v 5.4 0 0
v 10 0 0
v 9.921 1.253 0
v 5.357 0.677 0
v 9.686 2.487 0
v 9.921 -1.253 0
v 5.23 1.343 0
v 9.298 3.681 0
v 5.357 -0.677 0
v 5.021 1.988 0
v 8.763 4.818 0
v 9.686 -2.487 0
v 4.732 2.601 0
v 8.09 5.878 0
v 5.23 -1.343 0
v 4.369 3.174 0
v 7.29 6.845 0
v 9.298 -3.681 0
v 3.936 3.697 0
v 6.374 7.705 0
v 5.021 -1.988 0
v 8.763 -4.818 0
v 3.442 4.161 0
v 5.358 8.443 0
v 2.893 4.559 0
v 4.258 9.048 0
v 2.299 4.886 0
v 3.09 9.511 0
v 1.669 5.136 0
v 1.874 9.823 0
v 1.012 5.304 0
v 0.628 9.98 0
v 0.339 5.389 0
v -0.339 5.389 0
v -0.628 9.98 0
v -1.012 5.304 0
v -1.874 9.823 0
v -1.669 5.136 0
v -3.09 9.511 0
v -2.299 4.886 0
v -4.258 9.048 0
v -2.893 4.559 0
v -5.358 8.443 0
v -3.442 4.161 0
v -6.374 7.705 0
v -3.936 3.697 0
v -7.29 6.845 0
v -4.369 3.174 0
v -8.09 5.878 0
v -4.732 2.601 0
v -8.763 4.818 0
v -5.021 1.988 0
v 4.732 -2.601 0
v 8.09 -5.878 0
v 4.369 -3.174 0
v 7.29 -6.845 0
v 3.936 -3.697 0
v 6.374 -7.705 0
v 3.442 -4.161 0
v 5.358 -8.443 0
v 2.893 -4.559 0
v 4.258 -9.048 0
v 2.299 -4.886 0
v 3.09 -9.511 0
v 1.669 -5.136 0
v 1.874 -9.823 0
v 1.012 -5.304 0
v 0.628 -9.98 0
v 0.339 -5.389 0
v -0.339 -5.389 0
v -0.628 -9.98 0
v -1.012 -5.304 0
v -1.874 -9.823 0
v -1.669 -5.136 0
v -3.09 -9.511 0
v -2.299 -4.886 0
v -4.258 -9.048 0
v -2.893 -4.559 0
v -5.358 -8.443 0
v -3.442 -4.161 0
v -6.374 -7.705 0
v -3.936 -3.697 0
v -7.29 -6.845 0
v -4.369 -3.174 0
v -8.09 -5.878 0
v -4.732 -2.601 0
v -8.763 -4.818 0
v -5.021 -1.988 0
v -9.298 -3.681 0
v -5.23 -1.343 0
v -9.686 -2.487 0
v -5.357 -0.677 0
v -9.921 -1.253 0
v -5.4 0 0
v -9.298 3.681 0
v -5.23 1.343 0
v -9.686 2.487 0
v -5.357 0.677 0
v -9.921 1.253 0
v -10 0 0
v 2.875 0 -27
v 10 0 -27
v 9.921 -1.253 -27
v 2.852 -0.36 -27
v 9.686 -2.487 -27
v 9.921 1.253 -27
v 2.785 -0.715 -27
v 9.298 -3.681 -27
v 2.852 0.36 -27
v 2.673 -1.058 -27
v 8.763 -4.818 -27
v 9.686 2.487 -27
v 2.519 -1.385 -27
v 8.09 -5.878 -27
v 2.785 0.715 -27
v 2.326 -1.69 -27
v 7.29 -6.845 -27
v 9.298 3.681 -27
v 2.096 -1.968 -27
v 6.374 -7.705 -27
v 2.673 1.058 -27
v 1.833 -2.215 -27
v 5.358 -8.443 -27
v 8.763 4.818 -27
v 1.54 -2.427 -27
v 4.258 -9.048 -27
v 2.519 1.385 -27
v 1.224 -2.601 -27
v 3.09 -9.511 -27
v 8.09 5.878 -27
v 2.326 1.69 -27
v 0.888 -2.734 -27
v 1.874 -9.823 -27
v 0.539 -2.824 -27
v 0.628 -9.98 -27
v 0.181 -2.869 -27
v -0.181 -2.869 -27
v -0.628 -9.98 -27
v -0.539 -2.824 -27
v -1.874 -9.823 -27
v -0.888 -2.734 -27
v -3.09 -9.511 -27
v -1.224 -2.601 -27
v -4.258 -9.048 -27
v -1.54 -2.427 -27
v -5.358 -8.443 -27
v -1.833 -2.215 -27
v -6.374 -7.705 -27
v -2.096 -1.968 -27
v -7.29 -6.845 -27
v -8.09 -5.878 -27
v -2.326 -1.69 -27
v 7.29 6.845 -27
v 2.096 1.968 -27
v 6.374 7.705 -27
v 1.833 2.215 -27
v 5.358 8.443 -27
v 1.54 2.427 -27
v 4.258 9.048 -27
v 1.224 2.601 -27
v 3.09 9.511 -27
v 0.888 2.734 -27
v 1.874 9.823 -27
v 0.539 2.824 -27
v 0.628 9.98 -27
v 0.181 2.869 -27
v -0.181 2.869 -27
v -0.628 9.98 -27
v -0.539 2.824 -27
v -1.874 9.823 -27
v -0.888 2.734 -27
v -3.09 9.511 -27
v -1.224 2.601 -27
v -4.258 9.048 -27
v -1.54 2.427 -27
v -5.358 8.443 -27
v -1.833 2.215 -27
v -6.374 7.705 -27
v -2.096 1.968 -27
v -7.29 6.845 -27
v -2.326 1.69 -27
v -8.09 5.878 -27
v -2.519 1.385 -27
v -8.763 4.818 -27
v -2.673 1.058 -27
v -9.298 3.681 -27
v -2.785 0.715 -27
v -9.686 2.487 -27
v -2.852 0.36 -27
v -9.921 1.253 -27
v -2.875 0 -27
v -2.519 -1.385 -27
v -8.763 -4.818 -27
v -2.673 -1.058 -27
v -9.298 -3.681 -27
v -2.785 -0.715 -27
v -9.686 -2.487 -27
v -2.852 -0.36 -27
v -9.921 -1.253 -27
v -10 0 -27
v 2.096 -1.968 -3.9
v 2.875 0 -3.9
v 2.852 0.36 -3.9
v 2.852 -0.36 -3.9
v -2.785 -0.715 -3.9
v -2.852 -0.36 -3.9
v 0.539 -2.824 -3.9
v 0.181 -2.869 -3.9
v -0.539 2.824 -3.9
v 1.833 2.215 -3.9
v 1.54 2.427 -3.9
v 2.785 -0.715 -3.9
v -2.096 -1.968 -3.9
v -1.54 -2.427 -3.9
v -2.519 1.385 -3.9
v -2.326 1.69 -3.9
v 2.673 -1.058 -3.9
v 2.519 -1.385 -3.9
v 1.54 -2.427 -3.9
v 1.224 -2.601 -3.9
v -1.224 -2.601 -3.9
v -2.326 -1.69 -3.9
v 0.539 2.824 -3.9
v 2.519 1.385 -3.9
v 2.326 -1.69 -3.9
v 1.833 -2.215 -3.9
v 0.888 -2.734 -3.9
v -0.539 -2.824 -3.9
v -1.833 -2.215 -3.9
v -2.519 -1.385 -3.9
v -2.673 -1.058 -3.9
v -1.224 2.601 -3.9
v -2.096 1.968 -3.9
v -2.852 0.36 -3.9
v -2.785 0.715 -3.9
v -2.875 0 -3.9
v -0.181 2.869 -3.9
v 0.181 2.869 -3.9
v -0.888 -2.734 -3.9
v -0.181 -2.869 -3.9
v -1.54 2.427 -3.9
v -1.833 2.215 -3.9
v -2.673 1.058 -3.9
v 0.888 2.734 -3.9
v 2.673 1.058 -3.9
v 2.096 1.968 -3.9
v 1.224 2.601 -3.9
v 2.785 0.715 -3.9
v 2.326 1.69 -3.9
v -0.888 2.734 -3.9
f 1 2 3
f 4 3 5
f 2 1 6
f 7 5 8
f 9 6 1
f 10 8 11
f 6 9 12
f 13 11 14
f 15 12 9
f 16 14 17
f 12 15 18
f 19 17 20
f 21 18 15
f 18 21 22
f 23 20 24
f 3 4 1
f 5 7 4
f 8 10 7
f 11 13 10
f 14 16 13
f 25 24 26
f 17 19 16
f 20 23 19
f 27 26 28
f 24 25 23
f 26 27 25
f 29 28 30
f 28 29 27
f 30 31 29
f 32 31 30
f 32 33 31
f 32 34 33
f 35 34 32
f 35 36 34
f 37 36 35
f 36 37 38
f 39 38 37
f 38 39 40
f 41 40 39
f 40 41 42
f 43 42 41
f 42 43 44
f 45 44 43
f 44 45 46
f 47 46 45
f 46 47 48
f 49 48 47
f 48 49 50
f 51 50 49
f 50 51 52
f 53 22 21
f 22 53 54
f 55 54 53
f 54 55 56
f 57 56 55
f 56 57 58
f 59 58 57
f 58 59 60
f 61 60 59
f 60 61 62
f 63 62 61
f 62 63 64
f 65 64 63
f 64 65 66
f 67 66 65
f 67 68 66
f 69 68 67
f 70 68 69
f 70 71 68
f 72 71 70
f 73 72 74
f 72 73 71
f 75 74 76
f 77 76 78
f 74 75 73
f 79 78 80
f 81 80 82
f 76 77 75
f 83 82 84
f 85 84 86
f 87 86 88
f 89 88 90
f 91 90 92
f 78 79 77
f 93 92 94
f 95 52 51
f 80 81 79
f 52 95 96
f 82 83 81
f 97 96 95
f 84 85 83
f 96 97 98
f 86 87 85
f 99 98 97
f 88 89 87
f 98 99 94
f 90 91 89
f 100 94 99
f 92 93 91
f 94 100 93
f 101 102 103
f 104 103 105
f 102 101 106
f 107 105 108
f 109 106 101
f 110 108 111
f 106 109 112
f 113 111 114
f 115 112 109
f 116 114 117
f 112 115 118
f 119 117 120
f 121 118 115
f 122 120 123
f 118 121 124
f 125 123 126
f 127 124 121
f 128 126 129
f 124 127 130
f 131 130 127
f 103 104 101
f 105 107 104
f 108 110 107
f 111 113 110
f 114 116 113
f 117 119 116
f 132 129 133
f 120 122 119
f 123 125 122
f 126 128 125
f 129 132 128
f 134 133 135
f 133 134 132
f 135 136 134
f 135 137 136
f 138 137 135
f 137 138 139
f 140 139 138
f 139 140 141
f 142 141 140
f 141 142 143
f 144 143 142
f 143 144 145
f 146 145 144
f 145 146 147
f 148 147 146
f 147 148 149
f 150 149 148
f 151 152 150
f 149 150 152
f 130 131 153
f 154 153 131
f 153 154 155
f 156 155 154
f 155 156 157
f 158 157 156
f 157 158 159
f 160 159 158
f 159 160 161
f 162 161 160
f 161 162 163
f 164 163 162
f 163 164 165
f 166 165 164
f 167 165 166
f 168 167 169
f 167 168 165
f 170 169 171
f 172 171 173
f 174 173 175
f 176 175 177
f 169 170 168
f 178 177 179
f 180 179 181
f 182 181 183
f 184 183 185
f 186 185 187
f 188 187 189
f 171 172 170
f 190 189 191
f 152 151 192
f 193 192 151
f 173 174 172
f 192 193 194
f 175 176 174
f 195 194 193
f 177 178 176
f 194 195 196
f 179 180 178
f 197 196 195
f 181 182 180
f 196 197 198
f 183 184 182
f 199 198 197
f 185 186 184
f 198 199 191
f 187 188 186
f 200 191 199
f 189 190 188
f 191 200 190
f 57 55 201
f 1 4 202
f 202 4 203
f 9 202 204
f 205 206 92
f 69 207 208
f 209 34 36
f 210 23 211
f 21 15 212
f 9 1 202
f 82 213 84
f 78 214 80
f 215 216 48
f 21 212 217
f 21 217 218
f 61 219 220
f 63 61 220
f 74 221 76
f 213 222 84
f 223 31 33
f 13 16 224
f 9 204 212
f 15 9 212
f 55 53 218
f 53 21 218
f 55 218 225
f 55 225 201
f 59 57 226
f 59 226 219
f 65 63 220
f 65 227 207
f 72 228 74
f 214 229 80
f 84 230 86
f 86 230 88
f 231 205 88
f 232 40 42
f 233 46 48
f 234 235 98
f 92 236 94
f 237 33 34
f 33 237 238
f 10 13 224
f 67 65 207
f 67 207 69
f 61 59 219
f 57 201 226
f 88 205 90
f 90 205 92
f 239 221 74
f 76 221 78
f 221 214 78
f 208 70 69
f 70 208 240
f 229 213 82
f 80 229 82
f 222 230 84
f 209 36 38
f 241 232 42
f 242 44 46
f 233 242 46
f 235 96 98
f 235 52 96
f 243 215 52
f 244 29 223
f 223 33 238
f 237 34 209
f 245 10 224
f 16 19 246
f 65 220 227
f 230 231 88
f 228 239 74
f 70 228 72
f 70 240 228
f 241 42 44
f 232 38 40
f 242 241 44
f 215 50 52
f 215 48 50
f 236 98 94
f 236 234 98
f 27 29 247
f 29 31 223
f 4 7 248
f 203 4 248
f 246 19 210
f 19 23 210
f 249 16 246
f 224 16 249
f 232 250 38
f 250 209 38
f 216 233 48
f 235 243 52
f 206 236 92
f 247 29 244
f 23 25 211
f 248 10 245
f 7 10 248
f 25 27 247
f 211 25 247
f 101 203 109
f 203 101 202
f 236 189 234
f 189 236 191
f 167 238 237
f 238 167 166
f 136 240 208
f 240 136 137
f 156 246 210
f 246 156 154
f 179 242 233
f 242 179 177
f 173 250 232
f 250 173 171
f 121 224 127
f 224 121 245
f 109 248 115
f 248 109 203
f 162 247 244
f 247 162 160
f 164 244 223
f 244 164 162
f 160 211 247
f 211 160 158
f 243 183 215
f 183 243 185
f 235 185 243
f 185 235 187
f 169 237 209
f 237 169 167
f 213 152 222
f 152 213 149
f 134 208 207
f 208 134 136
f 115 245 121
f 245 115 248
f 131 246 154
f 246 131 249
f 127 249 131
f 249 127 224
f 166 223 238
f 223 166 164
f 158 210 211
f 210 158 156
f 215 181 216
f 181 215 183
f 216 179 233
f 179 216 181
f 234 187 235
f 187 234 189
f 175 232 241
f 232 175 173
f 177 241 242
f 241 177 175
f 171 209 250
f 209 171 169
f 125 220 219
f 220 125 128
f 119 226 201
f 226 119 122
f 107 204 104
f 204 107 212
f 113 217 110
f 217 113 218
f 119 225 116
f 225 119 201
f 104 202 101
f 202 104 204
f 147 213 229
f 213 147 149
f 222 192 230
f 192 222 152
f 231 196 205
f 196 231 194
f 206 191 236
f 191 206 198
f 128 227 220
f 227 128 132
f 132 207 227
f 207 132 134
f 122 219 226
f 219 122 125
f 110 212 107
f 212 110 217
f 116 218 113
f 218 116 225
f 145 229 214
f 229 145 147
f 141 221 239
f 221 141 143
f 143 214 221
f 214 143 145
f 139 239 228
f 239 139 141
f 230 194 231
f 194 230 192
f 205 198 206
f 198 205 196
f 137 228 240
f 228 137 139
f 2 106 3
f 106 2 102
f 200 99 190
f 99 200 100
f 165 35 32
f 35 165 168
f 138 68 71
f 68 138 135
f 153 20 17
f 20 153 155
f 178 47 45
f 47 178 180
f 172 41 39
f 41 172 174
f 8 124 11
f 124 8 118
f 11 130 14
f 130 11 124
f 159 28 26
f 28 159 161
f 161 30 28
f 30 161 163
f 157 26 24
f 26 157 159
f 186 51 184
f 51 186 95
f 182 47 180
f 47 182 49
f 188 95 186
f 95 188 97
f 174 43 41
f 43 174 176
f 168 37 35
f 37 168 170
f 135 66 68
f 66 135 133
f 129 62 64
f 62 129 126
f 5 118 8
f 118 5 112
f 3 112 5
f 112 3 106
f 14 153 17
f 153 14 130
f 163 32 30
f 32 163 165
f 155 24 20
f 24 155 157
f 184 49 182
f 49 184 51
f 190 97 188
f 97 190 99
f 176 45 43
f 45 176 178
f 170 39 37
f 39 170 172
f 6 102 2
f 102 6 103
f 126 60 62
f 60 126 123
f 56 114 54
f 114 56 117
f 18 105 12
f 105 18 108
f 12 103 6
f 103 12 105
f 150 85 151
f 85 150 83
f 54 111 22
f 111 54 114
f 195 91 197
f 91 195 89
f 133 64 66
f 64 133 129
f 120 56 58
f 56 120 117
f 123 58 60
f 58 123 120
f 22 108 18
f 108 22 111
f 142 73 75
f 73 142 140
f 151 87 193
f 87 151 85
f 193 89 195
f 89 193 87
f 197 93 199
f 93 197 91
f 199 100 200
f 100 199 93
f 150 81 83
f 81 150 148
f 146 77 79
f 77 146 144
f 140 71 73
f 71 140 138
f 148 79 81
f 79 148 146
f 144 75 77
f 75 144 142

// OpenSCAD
$fn = 50;


difference() {
	union() {
		translate(v = [0, 0, -27.0000000000]) {
			cylinder(h = 27, r = 10.0000000000);
		}
		cylinder(h = 0, r = 13.0000000000);
	}
	union() {
		translate(v = [0, 0, 0]) {
			rotate(a = [0, 0, 0]) {
				difference() {
					union() {
						#translate(v = [0, 0, -27.0000000000]) {
							cylinder(h = 27, r = 2.6000000000);
						}
						#translate(v = [0, 0, -3.9000000000]) {
							cylinder(h = 3.9000000000, r = 10.0000000000, r1 = 2.8750000000, r2 = 5.4000000000);
						}
						#translate(v = [0, 0, -27.0000000000]) {
							cylinder(h = 27, r = 2.8750000000);
						}
						#translate(v = [0, 0, -27.0000000000]) {
							cylinder(h = 27, r = 2.6000000000);
						}
					}
					union();
				}
			}
		}
	}
}
